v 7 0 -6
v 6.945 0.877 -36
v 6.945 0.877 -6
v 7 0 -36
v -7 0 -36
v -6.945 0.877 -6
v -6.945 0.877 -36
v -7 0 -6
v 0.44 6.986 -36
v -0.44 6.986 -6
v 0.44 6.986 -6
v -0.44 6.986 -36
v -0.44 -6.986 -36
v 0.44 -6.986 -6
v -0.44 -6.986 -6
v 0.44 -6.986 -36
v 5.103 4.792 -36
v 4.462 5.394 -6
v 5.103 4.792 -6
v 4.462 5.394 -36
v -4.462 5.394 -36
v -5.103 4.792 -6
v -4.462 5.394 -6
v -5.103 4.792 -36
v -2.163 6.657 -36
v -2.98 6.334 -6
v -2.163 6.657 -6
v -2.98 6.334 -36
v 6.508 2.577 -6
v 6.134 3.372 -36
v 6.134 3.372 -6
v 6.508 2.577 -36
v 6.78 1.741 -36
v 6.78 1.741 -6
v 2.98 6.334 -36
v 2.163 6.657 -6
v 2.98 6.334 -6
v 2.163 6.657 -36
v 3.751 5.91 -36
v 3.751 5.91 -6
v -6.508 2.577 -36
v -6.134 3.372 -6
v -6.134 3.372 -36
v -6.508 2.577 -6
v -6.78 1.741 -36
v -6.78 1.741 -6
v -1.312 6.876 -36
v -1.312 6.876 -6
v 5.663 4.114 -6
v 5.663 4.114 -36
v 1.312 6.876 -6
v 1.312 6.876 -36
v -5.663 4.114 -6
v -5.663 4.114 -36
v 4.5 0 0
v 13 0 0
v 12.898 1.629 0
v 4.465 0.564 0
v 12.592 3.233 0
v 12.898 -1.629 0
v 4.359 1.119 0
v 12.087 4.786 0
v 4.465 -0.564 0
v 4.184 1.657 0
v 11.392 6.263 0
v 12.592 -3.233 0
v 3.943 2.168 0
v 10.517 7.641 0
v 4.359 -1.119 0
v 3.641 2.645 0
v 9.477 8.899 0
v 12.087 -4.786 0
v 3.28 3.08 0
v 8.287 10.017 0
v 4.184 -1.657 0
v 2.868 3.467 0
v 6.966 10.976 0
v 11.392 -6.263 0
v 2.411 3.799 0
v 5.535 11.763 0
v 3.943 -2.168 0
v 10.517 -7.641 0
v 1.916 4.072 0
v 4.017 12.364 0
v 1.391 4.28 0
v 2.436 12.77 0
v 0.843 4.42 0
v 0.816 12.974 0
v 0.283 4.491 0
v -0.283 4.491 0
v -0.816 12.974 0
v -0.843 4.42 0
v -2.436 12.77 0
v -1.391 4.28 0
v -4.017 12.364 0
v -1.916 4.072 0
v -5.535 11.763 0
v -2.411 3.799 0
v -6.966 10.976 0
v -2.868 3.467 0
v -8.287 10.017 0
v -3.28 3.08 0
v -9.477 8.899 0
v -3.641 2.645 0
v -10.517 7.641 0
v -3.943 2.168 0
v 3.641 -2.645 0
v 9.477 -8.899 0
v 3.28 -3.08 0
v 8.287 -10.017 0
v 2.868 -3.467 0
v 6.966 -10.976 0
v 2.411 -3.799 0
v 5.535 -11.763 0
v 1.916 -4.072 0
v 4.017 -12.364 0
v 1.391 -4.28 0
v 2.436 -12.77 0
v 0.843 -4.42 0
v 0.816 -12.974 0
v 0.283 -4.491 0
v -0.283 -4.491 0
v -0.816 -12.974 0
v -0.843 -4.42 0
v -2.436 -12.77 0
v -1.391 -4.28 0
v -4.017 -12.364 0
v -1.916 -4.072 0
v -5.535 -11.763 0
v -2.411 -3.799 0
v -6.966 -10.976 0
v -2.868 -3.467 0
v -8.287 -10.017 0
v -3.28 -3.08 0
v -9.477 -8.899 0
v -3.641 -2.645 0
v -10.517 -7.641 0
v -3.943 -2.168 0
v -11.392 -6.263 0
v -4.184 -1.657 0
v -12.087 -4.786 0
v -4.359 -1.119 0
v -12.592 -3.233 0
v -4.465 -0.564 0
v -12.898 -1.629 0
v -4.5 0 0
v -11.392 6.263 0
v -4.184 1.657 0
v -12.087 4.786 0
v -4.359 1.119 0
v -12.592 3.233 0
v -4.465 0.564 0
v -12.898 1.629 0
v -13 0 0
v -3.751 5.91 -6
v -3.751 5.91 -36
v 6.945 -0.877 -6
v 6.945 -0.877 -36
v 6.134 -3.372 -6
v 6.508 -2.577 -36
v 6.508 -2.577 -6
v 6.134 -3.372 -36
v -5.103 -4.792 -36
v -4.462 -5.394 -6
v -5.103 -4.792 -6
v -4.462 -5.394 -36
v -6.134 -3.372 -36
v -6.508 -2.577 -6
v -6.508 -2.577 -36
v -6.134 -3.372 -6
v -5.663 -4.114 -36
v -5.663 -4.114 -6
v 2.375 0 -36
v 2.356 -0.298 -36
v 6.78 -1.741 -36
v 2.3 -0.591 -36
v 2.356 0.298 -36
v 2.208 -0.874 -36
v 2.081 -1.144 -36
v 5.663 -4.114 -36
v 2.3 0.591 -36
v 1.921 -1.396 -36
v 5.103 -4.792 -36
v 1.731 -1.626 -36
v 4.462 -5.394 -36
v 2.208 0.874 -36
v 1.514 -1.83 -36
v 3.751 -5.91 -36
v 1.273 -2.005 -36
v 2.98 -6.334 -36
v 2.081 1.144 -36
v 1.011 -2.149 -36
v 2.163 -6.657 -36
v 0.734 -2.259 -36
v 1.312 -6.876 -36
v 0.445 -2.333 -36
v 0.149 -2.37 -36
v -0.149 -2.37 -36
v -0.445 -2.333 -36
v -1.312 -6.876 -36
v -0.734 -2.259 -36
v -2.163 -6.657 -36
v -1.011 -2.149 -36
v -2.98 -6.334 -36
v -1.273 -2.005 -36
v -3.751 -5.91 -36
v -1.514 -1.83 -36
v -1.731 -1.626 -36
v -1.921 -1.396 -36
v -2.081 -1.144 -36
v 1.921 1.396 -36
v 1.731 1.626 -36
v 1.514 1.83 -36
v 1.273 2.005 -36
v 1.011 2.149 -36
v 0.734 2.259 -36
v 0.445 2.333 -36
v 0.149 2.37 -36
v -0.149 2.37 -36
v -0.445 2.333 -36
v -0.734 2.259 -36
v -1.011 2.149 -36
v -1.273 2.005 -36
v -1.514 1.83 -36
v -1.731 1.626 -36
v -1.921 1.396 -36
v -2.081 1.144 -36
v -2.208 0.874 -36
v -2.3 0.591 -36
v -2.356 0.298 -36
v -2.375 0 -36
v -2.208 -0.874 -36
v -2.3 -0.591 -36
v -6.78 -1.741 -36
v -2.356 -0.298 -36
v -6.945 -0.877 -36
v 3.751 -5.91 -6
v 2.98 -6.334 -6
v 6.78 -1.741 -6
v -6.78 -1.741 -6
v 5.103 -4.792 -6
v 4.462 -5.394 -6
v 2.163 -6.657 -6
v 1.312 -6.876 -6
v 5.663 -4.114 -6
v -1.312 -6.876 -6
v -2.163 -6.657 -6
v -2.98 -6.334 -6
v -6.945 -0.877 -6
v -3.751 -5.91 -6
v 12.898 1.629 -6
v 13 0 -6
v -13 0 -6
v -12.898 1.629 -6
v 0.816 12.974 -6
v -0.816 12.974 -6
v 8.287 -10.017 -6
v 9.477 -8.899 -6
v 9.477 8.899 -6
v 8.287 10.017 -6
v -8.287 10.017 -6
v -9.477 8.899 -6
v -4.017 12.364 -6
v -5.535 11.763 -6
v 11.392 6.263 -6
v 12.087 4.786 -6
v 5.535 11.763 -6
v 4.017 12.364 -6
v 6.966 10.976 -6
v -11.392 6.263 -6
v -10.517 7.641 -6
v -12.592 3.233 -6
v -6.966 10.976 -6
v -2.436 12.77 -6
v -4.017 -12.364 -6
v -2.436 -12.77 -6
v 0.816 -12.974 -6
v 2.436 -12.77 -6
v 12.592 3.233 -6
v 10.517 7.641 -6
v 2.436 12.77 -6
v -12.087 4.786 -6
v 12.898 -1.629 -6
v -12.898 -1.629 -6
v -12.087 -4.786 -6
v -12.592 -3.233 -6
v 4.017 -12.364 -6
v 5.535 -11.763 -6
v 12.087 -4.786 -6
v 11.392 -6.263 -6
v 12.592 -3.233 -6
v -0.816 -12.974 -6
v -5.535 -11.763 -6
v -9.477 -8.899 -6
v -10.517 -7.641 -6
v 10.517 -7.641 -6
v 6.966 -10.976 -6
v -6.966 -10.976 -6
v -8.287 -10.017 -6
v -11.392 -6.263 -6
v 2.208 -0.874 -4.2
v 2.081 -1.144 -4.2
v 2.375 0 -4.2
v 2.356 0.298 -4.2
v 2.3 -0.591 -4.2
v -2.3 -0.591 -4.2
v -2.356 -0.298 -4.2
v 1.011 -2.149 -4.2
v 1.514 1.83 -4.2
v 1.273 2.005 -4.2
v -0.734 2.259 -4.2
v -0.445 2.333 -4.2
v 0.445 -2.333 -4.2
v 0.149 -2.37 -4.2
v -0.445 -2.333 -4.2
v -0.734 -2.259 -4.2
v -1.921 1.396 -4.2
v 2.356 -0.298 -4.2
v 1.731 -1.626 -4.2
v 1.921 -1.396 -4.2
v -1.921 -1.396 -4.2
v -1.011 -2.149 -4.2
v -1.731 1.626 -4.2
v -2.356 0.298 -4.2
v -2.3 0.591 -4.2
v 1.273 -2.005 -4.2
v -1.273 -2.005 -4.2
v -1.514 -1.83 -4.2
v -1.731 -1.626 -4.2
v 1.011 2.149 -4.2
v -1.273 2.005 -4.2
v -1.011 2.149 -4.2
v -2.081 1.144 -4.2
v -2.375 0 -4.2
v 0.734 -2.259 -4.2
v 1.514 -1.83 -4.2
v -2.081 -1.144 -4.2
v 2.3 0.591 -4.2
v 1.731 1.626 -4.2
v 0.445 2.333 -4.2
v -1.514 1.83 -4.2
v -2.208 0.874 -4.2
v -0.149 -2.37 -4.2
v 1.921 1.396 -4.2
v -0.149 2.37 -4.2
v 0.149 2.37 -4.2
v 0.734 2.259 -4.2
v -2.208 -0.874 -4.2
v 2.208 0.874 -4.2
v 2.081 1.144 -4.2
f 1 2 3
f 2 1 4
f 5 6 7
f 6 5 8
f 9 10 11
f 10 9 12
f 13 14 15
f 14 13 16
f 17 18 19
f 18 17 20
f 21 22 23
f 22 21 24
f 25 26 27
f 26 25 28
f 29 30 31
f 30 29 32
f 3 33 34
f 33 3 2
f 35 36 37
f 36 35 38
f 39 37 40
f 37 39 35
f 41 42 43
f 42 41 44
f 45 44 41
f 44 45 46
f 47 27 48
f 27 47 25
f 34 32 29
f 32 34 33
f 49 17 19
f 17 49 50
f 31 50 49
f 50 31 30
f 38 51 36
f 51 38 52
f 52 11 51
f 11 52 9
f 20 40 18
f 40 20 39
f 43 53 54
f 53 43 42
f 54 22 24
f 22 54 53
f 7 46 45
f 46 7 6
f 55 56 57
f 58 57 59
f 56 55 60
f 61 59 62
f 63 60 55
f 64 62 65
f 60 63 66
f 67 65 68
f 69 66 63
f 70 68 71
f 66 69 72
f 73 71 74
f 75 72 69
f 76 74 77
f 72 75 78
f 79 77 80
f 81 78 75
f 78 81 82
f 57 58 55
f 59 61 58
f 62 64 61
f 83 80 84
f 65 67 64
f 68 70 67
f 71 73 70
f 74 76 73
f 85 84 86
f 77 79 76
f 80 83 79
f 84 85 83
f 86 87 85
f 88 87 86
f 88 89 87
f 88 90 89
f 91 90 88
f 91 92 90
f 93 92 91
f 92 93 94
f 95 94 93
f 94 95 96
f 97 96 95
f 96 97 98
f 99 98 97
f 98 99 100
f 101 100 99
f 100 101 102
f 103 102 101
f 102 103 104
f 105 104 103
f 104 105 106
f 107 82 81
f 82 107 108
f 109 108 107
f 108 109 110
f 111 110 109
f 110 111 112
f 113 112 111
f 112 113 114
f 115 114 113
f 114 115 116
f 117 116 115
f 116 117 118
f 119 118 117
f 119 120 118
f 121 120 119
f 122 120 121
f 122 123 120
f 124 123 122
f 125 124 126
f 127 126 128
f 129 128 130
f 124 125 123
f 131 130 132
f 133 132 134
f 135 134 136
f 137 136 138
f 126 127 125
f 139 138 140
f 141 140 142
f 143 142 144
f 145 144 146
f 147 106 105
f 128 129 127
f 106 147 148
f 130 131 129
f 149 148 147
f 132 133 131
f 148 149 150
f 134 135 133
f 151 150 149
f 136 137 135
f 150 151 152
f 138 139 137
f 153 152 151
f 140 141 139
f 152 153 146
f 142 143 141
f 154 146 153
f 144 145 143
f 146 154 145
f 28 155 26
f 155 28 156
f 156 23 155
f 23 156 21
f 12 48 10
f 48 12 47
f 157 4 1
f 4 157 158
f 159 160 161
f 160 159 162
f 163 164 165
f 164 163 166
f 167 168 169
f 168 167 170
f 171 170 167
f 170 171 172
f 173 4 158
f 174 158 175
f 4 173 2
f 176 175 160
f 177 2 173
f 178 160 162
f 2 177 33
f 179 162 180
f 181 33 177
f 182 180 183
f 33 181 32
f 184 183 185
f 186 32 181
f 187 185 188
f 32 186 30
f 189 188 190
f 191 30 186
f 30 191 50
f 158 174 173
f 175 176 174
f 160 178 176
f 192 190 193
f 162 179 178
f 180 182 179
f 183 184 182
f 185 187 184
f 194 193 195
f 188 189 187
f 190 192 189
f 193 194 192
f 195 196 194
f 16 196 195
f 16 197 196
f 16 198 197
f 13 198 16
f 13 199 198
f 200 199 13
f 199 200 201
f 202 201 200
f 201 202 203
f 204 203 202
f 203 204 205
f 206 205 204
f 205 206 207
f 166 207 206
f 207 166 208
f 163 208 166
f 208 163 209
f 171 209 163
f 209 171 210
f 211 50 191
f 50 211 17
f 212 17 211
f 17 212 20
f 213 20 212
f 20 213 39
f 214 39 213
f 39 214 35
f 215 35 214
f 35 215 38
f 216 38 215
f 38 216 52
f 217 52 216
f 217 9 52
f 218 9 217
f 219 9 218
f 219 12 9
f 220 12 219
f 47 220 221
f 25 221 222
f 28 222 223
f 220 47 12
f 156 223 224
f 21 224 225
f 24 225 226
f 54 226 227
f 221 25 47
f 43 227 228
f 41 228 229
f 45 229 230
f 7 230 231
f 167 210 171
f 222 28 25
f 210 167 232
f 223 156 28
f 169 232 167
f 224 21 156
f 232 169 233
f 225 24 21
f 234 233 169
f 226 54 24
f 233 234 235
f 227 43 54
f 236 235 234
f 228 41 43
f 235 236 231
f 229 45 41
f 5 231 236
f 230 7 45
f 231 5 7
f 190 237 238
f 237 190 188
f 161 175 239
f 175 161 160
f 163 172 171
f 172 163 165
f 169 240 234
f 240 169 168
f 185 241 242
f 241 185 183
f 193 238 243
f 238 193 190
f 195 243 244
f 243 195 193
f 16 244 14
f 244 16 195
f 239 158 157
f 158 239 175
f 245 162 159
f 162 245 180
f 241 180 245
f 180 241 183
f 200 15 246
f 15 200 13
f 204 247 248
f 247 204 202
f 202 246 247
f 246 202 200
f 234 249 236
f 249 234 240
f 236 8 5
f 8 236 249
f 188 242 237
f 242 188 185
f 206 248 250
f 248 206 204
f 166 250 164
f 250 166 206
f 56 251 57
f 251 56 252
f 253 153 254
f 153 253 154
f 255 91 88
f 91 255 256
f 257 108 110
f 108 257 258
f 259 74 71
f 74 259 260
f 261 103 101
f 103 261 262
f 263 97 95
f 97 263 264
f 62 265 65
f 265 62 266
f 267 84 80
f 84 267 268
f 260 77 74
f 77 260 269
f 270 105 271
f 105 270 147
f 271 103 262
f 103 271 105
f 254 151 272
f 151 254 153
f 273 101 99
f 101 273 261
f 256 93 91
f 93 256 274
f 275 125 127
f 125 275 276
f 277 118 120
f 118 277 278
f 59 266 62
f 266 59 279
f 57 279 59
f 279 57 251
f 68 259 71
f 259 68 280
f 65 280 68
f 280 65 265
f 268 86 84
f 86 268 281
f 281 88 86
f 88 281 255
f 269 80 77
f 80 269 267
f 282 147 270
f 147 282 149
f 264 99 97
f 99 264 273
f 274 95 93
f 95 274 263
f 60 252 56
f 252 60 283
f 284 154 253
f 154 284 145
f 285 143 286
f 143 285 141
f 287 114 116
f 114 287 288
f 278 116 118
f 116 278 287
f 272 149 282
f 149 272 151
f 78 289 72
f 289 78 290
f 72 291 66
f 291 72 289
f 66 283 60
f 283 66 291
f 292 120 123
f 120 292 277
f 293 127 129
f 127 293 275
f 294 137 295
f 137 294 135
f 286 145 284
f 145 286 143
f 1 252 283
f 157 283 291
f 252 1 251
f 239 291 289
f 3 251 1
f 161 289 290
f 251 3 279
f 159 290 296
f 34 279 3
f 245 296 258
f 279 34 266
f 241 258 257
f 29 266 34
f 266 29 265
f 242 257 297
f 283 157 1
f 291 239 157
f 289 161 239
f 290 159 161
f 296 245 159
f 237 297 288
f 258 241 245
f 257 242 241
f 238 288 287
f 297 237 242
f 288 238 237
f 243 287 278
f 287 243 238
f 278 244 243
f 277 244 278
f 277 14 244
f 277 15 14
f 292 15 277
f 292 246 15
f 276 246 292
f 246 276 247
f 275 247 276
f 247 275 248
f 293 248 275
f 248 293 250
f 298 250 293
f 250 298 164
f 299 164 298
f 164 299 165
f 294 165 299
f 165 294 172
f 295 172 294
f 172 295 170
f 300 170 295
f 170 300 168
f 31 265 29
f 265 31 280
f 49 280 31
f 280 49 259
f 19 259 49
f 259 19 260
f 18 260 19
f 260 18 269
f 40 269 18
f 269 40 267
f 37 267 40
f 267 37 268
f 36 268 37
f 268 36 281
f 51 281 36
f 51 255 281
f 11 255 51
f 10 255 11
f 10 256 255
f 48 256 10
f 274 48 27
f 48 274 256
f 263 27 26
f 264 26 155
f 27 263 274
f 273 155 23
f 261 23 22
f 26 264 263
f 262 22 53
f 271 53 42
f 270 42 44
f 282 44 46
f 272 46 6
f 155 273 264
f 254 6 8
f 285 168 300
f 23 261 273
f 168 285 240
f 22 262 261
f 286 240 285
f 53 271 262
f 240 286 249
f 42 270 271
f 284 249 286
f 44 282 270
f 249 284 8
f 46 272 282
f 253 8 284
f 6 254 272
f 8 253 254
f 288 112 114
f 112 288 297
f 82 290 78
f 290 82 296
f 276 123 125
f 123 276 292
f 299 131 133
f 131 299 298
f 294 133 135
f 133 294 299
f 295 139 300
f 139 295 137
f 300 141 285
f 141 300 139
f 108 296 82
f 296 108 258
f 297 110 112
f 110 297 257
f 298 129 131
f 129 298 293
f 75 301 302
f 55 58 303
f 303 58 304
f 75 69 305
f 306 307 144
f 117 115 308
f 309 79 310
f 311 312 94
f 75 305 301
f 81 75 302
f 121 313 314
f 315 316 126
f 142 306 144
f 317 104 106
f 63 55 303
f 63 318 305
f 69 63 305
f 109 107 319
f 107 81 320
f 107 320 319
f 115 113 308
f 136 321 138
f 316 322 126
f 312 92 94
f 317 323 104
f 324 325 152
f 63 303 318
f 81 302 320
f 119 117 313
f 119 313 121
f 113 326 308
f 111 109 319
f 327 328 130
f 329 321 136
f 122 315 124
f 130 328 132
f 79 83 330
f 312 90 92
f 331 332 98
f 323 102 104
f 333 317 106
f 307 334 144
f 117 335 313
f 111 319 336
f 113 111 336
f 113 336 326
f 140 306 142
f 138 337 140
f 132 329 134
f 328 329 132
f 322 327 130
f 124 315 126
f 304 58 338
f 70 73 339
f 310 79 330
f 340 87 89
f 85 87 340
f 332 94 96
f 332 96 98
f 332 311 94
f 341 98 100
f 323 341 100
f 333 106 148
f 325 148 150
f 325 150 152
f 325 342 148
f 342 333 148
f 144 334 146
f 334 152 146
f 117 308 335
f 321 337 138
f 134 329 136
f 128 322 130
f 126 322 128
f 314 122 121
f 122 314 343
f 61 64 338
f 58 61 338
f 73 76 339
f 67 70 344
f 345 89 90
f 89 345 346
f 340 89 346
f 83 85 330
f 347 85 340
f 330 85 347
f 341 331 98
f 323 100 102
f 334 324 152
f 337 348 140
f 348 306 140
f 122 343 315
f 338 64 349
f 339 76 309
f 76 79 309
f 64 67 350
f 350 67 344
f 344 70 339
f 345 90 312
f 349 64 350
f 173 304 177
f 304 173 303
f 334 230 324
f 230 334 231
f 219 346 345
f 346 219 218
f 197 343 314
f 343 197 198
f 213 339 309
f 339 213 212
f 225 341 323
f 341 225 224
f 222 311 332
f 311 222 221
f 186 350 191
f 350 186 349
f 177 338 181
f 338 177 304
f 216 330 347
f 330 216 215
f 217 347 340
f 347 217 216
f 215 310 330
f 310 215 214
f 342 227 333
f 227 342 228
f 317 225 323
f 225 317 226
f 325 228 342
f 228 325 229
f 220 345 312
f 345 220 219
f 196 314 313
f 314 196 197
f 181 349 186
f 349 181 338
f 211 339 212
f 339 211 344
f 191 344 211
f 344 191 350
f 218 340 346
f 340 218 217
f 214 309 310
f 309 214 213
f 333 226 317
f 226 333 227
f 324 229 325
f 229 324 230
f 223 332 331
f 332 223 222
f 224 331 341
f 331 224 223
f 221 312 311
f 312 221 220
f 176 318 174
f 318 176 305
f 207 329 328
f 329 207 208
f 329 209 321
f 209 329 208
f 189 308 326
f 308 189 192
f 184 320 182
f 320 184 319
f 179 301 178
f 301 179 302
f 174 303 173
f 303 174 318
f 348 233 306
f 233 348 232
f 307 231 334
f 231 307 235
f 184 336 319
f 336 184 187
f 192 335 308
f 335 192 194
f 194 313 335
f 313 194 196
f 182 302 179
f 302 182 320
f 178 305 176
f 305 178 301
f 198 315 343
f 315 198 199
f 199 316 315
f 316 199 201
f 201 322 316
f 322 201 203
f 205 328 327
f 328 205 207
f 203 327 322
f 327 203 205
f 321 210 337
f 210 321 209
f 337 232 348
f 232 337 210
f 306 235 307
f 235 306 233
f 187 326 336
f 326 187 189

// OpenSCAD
$fn = 50;


difference() {
	union() {
		translate(v = [0, 0, -36.0000000000]) {
			cylinder(h = 36, r = 7.0000000000);
		}
		translate(v = [0, 0, -6.0000000000]) {
			cylinder(h = 6, r = 13.0000000000);
		}
	}
	union() {
		translate(v = [0, 0, 0]) {
			rotate(a = [0, 0, 0]) {
				difference() {
					union() {
						#translate(v = [0, 0, -36.0000000000]) {
							cylinder(h = 36, r = 2.2500000000);
						}
						#translate(v = [0, 0, -4.2000000000]) {
							cylinder(h = 4.2000000000, r = 7.0000000000, r1 = 2.3750000000, r2 = 4.5000000000);
						}
						#translate(v = [0, 0, -36.0000000000]) {
							cylinder(h = 36, r = 2.3750000000);
						}
						#translate(v = [0, 0, -36.0000000000]) {
							cylinder(h = 36, r = 2.2500000000);
						}
					}
					union();
				}
			}
		}
	}
}
